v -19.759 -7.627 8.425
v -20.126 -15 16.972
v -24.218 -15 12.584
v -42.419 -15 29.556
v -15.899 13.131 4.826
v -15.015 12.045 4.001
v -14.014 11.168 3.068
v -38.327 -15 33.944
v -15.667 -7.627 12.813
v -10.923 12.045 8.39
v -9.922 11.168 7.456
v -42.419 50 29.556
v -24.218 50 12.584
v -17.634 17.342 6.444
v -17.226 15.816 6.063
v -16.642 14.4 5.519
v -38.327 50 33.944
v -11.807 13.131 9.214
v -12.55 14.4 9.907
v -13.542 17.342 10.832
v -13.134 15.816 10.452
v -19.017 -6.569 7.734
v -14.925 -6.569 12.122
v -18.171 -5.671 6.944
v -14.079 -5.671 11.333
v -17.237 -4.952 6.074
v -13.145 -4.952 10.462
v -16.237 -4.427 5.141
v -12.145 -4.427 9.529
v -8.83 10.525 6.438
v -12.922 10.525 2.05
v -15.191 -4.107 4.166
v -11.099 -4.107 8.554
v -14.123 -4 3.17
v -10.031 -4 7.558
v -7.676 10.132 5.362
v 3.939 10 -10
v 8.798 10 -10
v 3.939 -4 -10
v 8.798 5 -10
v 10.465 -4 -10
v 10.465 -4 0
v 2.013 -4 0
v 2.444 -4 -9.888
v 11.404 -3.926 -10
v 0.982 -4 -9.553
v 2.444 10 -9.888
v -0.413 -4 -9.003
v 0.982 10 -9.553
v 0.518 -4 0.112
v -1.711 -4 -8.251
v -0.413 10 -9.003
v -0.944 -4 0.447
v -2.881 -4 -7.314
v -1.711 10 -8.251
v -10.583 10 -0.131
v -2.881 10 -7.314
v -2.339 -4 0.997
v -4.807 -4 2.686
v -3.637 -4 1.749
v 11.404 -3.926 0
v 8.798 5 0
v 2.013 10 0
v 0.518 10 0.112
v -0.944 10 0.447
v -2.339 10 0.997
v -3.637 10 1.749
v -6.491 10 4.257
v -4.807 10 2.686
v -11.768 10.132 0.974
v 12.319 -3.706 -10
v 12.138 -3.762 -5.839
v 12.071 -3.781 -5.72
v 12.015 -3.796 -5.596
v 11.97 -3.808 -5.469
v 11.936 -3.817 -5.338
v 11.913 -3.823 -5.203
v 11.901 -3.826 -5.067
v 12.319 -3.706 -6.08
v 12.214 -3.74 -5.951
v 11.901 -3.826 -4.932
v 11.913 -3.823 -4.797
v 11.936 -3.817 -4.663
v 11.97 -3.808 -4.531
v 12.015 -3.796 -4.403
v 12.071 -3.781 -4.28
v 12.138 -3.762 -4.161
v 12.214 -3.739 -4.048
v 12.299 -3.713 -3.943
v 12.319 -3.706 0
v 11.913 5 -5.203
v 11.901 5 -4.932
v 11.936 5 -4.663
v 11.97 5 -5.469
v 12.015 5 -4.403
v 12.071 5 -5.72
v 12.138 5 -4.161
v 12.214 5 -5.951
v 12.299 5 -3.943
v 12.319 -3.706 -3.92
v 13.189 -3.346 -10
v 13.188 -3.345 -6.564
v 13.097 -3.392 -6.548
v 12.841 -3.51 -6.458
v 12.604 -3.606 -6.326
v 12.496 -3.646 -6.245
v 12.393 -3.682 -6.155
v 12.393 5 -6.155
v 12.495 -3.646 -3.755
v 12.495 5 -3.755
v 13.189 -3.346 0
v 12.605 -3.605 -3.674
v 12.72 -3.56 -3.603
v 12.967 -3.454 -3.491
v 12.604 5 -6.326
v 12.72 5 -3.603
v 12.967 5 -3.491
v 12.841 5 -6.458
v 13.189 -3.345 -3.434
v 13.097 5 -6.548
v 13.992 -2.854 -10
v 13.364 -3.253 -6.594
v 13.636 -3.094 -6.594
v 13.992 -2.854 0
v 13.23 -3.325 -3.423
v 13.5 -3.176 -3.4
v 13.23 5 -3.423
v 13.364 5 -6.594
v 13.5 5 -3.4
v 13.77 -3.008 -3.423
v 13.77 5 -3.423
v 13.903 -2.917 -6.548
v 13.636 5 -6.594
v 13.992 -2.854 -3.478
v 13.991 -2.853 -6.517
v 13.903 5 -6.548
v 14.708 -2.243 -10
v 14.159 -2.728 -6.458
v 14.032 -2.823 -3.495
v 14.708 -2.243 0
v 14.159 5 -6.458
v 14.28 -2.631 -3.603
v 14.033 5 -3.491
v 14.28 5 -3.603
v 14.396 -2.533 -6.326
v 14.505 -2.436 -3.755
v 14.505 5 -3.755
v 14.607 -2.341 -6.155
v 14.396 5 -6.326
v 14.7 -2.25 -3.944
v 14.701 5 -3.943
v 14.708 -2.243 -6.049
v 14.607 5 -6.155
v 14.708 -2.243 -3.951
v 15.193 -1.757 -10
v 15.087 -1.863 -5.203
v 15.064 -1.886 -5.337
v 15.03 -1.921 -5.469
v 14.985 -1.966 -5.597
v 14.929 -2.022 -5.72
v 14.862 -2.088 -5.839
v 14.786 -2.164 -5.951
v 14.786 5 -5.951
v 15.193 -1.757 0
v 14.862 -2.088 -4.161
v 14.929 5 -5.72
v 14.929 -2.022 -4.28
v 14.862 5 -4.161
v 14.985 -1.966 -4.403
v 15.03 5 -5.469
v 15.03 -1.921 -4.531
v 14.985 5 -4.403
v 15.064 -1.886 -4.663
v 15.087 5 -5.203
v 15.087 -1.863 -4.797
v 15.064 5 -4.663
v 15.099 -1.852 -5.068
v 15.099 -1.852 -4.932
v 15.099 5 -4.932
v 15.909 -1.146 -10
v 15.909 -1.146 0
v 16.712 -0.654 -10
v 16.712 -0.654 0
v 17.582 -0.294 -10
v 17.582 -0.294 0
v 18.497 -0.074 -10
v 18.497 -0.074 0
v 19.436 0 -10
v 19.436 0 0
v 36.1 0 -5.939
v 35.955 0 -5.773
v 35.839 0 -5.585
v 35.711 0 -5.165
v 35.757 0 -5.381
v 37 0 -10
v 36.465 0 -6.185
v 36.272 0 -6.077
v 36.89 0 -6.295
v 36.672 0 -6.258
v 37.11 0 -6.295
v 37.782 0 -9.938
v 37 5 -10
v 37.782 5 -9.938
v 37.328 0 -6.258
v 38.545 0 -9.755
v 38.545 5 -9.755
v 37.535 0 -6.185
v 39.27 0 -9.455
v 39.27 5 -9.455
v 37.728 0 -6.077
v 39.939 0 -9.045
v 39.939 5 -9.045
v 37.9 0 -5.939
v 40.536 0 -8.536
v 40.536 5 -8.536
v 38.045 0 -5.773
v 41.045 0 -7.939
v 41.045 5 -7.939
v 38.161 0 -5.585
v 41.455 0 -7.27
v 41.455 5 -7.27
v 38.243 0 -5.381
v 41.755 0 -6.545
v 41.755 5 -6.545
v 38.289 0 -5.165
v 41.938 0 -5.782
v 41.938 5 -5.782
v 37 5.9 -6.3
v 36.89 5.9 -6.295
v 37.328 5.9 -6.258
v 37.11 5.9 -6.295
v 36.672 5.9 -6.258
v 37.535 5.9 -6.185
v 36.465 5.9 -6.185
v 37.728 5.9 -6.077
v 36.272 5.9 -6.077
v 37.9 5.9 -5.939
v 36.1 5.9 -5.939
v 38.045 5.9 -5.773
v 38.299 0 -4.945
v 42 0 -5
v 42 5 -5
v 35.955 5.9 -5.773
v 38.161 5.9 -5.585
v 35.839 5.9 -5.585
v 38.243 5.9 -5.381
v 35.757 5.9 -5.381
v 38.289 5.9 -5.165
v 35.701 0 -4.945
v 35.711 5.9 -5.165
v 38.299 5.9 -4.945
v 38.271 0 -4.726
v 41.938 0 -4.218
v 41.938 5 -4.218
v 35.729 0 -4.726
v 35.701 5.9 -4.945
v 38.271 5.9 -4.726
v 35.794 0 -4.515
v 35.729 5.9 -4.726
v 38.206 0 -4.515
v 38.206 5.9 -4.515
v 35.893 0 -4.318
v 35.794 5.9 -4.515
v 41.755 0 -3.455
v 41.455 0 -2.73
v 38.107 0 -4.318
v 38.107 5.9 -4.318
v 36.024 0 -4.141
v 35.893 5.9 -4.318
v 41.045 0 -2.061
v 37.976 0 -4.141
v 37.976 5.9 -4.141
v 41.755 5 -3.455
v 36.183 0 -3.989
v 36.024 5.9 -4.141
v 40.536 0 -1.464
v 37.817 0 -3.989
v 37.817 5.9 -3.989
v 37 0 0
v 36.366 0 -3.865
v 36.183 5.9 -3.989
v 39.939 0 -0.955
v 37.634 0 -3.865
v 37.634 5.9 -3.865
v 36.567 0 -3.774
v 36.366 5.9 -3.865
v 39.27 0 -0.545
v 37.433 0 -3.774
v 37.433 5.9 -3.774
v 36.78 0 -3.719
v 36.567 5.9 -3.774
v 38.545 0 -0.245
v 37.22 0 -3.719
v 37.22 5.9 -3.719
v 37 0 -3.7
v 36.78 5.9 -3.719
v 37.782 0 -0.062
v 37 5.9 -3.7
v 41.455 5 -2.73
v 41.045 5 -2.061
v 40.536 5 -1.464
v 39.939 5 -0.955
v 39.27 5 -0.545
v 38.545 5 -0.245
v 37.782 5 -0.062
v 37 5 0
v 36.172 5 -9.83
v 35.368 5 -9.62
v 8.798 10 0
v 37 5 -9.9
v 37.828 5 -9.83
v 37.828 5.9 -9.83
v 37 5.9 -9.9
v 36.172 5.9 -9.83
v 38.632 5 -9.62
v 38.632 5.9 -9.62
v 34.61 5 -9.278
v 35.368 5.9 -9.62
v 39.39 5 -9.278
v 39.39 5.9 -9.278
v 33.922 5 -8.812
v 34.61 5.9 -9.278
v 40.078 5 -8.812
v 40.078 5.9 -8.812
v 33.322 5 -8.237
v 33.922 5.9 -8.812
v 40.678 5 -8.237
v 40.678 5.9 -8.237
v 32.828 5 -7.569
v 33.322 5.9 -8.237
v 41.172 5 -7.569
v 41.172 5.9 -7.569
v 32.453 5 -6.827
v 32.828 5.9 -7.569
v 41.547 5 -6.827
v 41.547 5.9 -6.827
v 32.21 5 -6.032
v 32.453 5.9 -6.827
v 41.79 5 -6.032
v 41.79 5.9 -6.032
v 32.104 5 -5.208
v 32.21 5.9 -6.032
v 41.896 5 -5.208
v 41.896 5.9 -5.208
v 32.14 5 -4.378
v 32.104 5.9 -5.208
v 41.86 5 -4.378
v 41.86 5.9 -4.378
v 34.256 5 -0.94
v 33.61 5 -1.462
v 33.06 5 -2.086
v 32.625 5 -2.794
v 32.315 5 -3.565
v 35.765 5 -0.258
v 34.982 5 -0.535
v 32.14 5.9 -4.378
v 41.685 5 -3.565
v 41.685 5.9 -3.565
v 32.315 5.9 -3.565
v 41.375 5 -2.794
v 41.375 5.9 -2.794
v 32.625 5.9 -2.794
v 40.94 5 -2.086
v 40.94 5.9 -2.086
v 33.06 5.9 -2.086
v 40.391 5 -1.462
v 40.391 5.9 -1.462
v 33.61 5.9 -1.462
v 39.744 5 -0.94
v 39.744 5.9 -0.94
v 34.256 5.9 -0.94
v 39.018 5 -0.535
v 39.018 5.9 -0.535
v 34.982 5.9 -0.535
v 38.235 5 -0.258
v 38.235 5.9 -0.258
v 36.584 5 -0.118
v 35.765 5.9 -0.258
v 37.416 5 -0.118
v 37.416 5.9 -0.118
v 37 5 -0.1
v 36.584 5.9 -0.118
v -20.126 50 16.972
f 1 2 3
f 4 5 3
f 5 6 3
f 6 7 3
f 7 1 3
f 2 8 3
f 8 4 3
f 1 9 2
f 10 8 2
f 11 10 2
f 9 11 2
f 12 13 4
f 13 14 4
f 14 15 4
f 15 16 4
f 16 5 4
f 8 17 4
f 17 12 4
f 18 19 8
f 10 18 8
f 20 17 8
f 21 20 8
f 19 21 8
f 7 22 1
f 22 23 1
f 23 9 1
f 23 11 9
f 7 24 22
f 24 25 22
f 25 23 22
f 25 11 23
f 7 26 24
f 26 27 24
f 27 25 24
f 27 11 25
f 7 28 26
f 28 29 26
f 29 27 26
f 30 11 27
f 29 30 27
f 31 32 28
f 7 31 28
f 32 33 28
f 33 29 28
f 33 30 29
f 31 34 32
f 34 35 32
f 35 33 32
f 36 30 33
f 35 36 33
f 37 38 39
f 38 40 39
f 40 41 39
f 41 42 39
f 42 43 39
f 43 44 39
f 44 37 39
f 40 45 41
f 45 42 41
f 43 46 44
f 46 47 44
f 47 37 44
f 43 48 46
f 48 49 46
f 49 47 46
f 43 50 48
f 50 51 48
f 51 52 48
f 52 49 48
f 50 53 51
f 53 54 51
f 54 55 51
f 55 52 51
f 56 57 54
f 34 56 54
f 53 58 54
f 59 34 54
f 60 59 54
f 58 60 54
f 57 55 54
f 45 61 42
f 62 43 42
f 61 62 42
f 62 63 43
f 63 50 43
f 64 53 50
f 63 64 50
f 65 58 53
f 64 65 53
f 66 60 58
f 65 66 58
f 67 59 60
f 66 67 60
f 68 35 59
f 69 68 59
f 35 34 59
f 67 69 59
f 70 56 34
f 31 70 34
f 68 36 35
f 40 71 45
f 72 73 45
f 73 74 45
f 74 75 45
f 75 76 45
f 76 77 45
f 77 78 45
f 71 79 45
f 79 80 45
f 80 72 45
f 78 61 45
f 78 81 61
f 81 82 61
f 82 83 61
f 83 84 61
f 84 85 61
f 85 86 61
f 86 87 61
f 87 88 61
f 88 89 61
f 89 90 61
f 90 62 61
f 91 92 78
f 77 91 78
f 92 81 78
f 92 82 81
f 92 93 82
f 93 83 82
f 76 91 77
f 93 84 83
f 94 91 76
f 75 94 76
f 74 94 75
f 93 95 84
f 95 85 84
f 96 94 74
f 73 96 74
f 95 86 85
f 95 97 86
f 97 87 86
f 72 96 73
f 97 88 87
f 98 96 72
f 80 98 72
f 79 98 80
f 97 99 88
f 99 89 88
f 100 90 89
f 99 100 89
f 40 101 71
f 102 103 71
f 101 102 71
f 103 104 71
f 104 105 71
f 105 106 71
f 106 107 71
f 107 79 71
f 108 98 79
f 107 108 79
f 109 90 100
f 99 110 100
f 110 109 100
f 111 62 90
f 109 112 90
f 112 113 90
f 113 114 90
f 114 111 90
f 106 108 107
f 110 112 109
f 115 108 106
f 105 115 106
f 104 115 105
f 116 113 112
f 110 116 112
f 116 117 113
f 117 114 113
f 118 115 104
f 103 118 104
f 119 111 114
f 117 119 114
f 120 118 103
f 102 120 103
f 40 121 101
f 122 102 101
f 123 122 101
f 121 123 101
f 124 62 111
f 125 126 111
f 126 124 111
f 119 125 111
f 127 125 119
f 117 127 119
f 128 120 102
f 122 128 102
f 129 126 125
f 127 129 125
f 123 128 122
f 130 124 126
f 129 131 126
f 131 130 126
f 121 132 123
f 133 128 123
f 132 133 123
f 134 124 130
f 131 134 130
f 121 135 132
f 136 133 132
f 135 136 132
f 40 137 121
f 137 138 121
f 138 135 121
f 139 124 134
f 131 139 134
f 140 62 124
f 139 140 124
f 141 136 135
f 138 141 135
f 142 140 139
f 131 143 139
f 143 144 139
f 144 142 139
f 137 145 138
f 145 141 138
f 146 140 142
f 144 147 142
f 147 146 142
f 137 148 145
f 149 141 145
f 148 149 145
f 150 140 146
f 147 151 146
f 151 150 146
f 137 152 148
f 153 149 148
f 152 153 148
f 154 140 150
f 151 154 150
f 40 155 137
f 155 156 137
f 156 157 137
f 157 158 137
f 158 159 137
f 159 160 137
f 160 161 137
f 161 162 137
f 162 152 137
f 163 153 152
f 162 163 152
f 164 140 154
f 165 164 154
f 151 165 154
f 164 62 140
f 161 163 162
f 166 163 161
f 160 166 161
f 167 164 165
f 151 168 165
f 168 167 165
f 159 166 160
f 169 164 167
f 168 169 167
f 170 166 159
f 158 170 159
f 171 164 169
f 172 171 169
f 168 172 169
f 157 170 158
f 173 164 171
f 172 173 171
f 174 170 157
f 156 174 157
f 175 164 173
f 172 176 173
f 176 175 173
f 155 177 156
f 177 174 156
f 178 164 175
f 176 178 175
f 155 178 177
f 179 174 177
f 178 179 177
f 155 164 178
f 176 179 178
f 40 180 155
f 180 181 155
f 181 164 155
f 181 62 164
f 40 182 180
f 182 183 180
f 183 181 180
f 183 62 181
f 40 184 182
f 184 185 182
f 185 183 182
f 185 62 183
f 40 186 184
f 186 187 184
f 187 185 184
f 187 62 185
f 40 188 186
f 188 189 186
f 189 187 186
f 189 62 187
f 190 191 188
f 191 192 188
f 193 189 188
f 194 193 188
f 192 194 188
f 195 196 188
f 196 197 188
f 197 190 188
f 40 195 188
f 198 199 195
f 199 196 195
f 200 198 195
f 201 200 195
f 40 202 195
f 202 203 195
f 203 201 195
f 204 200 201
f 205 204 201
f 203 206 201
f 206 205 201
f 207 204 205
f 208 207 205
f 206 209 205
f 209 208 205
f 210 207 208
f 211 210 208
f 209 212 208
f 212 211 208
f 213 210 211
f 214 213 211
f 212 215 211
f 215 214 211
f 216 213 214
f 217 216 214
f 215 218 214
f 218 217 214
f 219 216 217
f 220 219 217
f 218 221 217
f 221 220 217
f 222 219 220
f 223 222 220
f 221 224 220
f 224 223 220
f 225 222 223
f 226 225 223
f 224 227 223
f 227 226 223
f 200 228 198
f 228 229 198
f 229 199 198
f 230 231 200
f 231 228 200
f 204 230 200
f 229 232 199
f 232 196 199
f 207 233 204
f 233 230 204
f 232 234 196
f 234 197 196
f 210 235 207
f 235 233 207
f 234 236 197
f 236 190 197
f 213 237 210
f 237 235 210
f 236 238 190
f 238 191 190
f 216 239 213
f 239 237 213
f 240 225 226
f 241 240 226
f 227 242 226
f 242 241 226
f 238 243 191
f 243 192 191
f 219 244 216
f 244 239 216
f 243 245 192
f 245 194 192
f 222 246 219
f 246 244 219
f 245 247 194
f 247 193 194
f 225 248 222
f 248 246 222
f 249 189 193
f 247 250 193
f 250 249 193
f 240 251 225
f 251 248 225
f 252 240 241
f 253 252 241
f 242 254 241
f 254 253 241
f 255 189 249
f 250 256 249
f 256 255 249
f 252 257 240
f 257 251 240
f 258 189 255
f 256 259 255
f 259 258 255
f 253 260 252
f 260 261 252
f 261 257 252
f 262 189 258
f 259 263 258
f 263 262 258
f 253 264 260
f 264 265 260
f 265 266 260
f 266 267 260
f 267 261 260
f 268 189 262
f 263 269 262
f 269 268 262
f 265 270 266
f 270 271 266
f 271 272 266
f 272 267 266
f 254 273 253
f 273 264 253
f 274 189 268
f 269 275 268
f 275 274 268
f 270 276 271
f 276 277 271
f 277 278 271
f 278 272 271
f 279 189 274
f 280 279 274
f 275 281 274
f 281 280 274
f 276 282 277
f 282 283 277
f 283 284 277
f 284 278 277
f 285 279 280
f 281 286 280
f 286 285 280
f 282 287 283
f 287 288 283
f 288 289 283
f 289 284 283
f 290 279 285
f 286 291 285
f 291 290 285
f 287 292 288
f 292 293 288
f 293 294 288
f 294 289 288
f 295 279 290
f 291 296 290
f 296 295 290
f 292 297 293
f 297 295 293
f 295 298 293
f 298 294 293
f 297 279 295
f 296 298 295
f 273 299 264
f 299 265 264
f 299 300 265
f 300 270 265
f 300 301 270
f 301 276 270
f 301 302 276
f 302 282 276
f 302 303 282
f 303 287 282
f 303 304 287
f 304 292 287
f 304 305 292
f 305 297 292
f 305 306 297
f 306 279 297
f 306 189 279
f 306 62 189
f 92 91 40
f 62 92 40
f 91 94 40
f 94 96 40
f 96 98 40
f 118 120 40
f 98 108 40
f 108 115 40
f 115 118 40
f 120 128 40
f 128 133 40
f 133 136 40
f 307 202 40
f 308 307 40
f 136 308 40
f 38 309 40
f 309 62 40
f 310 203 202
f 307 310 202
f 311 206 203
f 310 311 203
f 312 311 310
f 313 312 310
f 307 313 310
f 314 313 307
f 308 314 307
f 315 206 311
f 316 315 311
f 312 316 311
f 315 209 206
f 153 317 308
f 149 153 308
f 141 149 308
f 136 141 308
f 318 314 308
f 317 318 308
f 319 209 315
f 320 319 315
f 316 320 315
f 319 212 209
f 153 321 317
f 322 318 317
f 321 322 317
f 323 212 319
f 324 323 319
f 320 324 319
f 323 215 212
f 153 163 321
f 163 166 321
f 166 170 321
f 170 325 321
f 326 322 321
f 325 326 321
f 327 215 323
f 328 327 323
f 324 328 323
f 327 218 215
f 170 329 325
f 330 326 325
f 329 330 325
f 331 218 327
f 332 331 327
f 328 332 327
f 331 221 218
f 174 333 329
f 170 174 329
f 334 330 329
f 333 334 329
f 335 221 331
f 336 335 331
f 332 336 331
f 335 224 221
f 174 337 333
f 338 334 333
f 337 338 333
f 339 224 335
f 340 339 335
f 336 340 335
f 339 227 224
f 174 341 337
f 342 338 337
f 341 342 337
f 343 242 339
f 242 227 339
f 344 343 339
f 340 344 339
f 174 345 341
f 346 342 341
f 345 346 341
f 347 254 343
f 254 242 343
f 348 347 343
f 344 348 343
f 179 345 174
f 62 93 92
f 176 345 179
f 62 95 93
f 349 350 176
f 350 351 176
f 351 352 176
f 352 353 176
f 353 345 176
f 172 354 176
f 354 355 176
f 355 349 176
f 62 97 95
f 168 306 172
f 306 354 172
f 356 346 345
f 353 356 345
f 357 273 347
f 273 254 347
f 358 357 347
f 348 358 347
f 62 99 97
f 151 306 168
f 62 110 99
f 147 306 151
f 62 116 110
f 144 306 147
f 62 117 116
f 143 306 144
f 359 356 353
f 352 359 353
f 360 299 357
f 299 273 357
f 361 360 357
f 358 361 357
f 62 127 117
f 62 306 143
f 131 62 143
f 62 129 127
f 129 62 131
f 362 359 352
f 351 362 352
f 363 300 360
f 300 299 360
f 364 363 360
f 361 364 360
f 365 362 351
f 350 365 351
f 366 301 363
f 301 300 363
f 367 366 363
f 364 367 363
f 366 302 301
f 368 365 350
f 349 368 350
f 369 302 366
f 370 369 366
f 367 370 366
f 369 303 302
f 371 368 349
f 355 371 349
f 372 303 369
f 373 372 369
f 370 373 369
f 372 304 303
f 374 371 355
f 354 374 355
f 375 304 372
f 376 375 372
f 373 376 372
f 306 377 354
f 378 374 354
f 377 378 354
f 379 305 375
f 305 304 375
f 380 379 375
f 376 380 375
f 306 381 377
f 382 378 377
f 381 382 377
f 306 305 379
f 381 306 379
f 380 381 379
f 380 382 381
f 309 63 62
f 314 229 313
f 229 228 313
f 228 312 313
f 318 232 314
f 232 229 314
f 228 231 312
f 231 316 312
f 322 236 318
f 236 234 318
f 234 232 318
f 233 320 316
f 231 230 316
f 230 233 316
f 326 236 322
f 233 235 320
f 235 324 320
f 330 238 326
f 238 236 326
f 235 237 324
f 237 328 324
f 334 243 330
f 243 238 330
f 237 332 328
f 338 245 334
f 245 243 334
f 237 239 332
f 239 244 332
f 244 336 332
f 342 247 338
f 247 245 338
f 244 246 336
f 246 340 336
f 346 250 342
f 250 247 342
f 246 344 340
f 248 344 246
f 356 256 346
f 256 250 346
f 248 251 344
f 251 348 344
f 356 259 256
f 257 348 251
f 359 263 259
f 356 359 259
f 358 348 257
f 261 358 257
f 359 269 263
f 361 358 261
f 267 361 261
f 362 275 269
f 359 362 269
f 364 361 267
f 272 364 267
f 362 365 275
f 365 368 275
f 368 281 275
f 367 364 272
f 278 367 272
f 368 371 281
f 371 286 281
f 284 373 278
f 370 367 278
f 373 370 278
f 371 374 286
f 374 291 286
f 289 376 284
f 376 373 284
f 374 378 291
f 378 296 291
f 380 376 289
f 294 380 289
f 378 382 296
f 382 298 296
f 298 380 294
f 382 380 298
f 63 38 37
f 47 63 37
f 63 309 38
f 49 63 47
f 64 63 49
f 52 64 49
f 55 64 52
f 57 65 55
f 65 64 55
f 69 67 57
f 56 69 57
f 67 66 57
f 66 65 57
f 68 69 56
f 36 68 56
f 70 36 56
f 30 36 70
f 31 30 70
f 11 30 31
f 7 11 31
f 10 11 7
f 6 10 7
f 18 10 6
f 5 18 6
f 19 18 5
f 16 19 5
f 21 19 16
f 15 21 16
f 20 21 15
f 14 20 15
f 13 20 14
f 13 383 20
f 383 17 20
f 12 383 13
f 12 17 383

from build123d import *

# Parameters (mm, degrees)
BOSS_EXTRUDE1_DEPTH = 5
FILLET1_R           = 5
SKETCH2_R           = 1.3
CUT_EXTRUDE1_DEPTH  = 10
BOSS_EXTRUDE2_DEPTH = 45
BOSS_EXTRUDE3_DEPTH = 15
BOSS_EXTRUDE4_DEPTH = 6
BOSS_EXTRUDE5_START = -5.9
SKETCH6_R           = 4.9
SKETCH6_R_2         = 1.3
BOSS_EXTRUDE5_DEPTH = 5.9
BOSS_EXTRUDE6_DEPTH = 4
BOSS_EXTRUDE7_DEPTH = 5
BOSS_EXTRUDE8_DEPTH = 9
CHAMFER1_SIZE       = 5
FILLET2_R           = 6
SKETCH11_R          = 1.6
CUT_EXTRUDE2_DEPTH  = 10
FILLET3_R           = 10


# Some blends are built 0.0001 mm under size
with BuildPart() as part:
    # Sketch1 → Boss-Extrude1 (new body)
    with BuildSketch(Plane(origin=(0, 0, 0), x_dir=(1, 0, 0), z_dir=(0, 1, 0))):
        Polygon((4.09199016, 5.61187779), (0, 10), (0, 1.796035233), align=None)
        Polygon((0, 1.796035233), (0, 10), (-42.418514694, -29.555904884), (-38.326524534, -33.944027093), (-1.926011986, 0), align=None)
        Polygon((42, 10), (0, 10), (4.09199016, 5.61187779), (0, 1.796035233), (0, 0), (42, 0), align=None)
        Polygon((0, 0), (0, 1.796035233), (-1.926011986, 0), align=None)
    extrude(amount=BOSS_EXTRUDE1_DEPTH)

    # Fillet1
    fillet1_edges = [part.edges().sort_by_distance(p)[0] for p in [
        (42, 2.5, 0),
        (42, 2.5, -10),
    ]]
    fillet(fillet1_edges, radius=FILLET1_R - 0.0001)  # a hair under: the kernel refuses the full size

    # Sketch2 → Cut-Extrude1 (cut)
    with BuildSketch(Plane(origin=(0, 5, 0), x_dir=(1, 0, 0), z_dir=(0, 1, 0))):
        with Locations(Location((37, 5, 0), (0, 0, 270))):
            Circle(SKETCH2_R)
    extrude(amount=-CUT_EXTRUDE1_DEPTH, mode=Mode.SUBTRACT)

    # Sketch3 → Boss-Extrude2 (add)
    with BuildSketch(Plane(origin=(0, 5, 0), x_dir=(1, 0, 0), z_dir=(0, 1, 0))):
        Polygon((-42.418514694, -29.555904884), (-38.326524534, -33.944027093), (-20.12626826, -16.972013547), (-24.21825842, -12.583891337), align=None)
    extrude(amount=BOSS_EXTRUDE2_DEPTH)

    # Sketch4 → Boss-Extrude3 (add)
    with BuildSketch(Plane.XZ):
        Polygon((-42.418514694, 29.555904884), (-38.326524534, 33.944027093), (-20.12626826, 16.972013547), (-24.21825842, 12.583891337), align=None)
    extrude(amount=BOSS_EXTRUDE3_DEPTH)

    # Sketch5 → Boss-Extrude4 (add)
    with BuildSketch(Plane(origin=(-4.987820251, 0, -5.348782369), x_dir=(-0.7313537016191739, 0, 0.6819983600624947), z_dir=(-0.6819983600624948, 0, -0.731353701619174))):
        Polygon((26.294306197, -15), (26.294306197, 0), (13.888976828, 0), align=None)
        Polygon((13.888976828, 5), (26.294306197, 50), (26.294306197, 5), align=None)
    extrude(amount=-BOSS_EXTRUDE4_DEPTH)

    # Sketch6 → Boss-Extrude5 (add)
    with BuildSketch(Plane.XZ.offset(BOSS_EXTRUDE5_START)):
        with Locations(Location((37, -5, 0), (0, 0, 270))):
            Circle(SKETCH6_R)
        with Locations(Location((37, -5, 0), (0, 0, 90))):
            Circle(SKETCH6_R_2, mode=Mode.SUBTRACT)
    extrude(amount=BOSS_EXTRUDE5_DEPTH)

    # Sketch8 → Boss-Extrude6 (add)
    with BuildSketch(Plane.XZ):
        Polygon((0, -10), (-19.681916643, 8.353684194), (-15.589926483, 12.741806404), (8.797675114, -10), align=None)
    extrude(amount=BOSS_EXTRUDE6_DEPTH)

    # Sketch10 → Boss-Extrude7 (add)
    with BuildSketch(Plane(origin=(0, 5, 0), x_dir=(1, 0, 0), z_dir=(0, 1, 0))):
        Polygon((8.797675114, 10), (8.797675114, 0), (-1.926011986, 0), (-16.799617624, -13.869861642), (-20.891607784, -9.481739432), (0, 10), align=None)
    extrude(amount=BOSS_EXTRUDE7_DEPTH)

    # Sketch9 → Boss-Extrude8 (add)
    with BuildSketch(Plane(origin=(0, 5, 0), x_dir=(1, 0, 0), z_dir=(0, 1, 0))):
        Polygon((17.950520425, 10), (8.797675114, 10), (-1.926011986, 0), (8.797675114, 0), (17.950520425, 0), align=None)
    extrude(amount=-BOSS_EXTRUDE8_DEPTH)

    # Chamfer1
    # the kernel refuses this chamfer: 5 mm, written as the material it adds along each edge
    # the kernel refuses this chamfer: 5 mm, written as the material it takes off along each edge
    with BuildSketch(Plane(origin=(17.950520425, -4, 12.85841494), x_dir=(0.027495876610586317, 0.9996219169112968, 0), z_dir=(0, 0, -1))) as chamfer1_2_piece_1_section:
        Polygon((CHAMFER1_SIZE * 0.999621916911, -CHAMFER1_SIZE * 0.0274958766106), (-CHAMFER1_SIZE * 0.0274958766106, -CHAMFER1_SIZE * 0.999621916911), (0, 0), align=None)
    chamfer1_2_piece_1 = extrude(amount=35.71682988, mode=Mode.PRIVATE)
    chamfer1_2_piece_1 = split(chamfer1_2_piece_1, bisect_by=Plane(origin=(16.228298203, 0, -5), z_dir=(0, -1, 0)), keep=Keep.TOP, mode=Mode.PRIVATE)
    add(chamfer1_2_piece_1, mode=Mode.SUBTRACT)

    # Fillet2
    fillet2_edges = [part.edges().sort_by_distance(p)[0] for p in [
        (12.950520425, -4, -5),
        (16.950520425, 0, -5),
    ]]
    fillet(fillet2_edges, radius=FILLET2_R)

    # Sketch11 → Cut-Extrude2 (cut)
    with BuildSketch(Plane(origin=(0, 5, 0), x_dir=(1, 0, 0), z_dir=(0, 1, 0))):
        with Locations(Location((13.5, 5, 0), (0, 0, 270))):
            Circle(SKETCH11_R)
    extrude(amount=-CUT_EXTRUDE2_DEPTH, mode=Mode.SUBTRACT)

    # Fillet3
    fillet3_edges = [part.edges().sort_by_distance(p)[0] for p in [
        (-14.107655737, 10, 7.257584188),
        (-1.926011986, 3, 0),
        (0, 3, -10),
        (-15.518962067, -4, 8.573648632),
    ]]
    fillet(fillet3_edges, radius=FILLET3_R)


solid = part.part
